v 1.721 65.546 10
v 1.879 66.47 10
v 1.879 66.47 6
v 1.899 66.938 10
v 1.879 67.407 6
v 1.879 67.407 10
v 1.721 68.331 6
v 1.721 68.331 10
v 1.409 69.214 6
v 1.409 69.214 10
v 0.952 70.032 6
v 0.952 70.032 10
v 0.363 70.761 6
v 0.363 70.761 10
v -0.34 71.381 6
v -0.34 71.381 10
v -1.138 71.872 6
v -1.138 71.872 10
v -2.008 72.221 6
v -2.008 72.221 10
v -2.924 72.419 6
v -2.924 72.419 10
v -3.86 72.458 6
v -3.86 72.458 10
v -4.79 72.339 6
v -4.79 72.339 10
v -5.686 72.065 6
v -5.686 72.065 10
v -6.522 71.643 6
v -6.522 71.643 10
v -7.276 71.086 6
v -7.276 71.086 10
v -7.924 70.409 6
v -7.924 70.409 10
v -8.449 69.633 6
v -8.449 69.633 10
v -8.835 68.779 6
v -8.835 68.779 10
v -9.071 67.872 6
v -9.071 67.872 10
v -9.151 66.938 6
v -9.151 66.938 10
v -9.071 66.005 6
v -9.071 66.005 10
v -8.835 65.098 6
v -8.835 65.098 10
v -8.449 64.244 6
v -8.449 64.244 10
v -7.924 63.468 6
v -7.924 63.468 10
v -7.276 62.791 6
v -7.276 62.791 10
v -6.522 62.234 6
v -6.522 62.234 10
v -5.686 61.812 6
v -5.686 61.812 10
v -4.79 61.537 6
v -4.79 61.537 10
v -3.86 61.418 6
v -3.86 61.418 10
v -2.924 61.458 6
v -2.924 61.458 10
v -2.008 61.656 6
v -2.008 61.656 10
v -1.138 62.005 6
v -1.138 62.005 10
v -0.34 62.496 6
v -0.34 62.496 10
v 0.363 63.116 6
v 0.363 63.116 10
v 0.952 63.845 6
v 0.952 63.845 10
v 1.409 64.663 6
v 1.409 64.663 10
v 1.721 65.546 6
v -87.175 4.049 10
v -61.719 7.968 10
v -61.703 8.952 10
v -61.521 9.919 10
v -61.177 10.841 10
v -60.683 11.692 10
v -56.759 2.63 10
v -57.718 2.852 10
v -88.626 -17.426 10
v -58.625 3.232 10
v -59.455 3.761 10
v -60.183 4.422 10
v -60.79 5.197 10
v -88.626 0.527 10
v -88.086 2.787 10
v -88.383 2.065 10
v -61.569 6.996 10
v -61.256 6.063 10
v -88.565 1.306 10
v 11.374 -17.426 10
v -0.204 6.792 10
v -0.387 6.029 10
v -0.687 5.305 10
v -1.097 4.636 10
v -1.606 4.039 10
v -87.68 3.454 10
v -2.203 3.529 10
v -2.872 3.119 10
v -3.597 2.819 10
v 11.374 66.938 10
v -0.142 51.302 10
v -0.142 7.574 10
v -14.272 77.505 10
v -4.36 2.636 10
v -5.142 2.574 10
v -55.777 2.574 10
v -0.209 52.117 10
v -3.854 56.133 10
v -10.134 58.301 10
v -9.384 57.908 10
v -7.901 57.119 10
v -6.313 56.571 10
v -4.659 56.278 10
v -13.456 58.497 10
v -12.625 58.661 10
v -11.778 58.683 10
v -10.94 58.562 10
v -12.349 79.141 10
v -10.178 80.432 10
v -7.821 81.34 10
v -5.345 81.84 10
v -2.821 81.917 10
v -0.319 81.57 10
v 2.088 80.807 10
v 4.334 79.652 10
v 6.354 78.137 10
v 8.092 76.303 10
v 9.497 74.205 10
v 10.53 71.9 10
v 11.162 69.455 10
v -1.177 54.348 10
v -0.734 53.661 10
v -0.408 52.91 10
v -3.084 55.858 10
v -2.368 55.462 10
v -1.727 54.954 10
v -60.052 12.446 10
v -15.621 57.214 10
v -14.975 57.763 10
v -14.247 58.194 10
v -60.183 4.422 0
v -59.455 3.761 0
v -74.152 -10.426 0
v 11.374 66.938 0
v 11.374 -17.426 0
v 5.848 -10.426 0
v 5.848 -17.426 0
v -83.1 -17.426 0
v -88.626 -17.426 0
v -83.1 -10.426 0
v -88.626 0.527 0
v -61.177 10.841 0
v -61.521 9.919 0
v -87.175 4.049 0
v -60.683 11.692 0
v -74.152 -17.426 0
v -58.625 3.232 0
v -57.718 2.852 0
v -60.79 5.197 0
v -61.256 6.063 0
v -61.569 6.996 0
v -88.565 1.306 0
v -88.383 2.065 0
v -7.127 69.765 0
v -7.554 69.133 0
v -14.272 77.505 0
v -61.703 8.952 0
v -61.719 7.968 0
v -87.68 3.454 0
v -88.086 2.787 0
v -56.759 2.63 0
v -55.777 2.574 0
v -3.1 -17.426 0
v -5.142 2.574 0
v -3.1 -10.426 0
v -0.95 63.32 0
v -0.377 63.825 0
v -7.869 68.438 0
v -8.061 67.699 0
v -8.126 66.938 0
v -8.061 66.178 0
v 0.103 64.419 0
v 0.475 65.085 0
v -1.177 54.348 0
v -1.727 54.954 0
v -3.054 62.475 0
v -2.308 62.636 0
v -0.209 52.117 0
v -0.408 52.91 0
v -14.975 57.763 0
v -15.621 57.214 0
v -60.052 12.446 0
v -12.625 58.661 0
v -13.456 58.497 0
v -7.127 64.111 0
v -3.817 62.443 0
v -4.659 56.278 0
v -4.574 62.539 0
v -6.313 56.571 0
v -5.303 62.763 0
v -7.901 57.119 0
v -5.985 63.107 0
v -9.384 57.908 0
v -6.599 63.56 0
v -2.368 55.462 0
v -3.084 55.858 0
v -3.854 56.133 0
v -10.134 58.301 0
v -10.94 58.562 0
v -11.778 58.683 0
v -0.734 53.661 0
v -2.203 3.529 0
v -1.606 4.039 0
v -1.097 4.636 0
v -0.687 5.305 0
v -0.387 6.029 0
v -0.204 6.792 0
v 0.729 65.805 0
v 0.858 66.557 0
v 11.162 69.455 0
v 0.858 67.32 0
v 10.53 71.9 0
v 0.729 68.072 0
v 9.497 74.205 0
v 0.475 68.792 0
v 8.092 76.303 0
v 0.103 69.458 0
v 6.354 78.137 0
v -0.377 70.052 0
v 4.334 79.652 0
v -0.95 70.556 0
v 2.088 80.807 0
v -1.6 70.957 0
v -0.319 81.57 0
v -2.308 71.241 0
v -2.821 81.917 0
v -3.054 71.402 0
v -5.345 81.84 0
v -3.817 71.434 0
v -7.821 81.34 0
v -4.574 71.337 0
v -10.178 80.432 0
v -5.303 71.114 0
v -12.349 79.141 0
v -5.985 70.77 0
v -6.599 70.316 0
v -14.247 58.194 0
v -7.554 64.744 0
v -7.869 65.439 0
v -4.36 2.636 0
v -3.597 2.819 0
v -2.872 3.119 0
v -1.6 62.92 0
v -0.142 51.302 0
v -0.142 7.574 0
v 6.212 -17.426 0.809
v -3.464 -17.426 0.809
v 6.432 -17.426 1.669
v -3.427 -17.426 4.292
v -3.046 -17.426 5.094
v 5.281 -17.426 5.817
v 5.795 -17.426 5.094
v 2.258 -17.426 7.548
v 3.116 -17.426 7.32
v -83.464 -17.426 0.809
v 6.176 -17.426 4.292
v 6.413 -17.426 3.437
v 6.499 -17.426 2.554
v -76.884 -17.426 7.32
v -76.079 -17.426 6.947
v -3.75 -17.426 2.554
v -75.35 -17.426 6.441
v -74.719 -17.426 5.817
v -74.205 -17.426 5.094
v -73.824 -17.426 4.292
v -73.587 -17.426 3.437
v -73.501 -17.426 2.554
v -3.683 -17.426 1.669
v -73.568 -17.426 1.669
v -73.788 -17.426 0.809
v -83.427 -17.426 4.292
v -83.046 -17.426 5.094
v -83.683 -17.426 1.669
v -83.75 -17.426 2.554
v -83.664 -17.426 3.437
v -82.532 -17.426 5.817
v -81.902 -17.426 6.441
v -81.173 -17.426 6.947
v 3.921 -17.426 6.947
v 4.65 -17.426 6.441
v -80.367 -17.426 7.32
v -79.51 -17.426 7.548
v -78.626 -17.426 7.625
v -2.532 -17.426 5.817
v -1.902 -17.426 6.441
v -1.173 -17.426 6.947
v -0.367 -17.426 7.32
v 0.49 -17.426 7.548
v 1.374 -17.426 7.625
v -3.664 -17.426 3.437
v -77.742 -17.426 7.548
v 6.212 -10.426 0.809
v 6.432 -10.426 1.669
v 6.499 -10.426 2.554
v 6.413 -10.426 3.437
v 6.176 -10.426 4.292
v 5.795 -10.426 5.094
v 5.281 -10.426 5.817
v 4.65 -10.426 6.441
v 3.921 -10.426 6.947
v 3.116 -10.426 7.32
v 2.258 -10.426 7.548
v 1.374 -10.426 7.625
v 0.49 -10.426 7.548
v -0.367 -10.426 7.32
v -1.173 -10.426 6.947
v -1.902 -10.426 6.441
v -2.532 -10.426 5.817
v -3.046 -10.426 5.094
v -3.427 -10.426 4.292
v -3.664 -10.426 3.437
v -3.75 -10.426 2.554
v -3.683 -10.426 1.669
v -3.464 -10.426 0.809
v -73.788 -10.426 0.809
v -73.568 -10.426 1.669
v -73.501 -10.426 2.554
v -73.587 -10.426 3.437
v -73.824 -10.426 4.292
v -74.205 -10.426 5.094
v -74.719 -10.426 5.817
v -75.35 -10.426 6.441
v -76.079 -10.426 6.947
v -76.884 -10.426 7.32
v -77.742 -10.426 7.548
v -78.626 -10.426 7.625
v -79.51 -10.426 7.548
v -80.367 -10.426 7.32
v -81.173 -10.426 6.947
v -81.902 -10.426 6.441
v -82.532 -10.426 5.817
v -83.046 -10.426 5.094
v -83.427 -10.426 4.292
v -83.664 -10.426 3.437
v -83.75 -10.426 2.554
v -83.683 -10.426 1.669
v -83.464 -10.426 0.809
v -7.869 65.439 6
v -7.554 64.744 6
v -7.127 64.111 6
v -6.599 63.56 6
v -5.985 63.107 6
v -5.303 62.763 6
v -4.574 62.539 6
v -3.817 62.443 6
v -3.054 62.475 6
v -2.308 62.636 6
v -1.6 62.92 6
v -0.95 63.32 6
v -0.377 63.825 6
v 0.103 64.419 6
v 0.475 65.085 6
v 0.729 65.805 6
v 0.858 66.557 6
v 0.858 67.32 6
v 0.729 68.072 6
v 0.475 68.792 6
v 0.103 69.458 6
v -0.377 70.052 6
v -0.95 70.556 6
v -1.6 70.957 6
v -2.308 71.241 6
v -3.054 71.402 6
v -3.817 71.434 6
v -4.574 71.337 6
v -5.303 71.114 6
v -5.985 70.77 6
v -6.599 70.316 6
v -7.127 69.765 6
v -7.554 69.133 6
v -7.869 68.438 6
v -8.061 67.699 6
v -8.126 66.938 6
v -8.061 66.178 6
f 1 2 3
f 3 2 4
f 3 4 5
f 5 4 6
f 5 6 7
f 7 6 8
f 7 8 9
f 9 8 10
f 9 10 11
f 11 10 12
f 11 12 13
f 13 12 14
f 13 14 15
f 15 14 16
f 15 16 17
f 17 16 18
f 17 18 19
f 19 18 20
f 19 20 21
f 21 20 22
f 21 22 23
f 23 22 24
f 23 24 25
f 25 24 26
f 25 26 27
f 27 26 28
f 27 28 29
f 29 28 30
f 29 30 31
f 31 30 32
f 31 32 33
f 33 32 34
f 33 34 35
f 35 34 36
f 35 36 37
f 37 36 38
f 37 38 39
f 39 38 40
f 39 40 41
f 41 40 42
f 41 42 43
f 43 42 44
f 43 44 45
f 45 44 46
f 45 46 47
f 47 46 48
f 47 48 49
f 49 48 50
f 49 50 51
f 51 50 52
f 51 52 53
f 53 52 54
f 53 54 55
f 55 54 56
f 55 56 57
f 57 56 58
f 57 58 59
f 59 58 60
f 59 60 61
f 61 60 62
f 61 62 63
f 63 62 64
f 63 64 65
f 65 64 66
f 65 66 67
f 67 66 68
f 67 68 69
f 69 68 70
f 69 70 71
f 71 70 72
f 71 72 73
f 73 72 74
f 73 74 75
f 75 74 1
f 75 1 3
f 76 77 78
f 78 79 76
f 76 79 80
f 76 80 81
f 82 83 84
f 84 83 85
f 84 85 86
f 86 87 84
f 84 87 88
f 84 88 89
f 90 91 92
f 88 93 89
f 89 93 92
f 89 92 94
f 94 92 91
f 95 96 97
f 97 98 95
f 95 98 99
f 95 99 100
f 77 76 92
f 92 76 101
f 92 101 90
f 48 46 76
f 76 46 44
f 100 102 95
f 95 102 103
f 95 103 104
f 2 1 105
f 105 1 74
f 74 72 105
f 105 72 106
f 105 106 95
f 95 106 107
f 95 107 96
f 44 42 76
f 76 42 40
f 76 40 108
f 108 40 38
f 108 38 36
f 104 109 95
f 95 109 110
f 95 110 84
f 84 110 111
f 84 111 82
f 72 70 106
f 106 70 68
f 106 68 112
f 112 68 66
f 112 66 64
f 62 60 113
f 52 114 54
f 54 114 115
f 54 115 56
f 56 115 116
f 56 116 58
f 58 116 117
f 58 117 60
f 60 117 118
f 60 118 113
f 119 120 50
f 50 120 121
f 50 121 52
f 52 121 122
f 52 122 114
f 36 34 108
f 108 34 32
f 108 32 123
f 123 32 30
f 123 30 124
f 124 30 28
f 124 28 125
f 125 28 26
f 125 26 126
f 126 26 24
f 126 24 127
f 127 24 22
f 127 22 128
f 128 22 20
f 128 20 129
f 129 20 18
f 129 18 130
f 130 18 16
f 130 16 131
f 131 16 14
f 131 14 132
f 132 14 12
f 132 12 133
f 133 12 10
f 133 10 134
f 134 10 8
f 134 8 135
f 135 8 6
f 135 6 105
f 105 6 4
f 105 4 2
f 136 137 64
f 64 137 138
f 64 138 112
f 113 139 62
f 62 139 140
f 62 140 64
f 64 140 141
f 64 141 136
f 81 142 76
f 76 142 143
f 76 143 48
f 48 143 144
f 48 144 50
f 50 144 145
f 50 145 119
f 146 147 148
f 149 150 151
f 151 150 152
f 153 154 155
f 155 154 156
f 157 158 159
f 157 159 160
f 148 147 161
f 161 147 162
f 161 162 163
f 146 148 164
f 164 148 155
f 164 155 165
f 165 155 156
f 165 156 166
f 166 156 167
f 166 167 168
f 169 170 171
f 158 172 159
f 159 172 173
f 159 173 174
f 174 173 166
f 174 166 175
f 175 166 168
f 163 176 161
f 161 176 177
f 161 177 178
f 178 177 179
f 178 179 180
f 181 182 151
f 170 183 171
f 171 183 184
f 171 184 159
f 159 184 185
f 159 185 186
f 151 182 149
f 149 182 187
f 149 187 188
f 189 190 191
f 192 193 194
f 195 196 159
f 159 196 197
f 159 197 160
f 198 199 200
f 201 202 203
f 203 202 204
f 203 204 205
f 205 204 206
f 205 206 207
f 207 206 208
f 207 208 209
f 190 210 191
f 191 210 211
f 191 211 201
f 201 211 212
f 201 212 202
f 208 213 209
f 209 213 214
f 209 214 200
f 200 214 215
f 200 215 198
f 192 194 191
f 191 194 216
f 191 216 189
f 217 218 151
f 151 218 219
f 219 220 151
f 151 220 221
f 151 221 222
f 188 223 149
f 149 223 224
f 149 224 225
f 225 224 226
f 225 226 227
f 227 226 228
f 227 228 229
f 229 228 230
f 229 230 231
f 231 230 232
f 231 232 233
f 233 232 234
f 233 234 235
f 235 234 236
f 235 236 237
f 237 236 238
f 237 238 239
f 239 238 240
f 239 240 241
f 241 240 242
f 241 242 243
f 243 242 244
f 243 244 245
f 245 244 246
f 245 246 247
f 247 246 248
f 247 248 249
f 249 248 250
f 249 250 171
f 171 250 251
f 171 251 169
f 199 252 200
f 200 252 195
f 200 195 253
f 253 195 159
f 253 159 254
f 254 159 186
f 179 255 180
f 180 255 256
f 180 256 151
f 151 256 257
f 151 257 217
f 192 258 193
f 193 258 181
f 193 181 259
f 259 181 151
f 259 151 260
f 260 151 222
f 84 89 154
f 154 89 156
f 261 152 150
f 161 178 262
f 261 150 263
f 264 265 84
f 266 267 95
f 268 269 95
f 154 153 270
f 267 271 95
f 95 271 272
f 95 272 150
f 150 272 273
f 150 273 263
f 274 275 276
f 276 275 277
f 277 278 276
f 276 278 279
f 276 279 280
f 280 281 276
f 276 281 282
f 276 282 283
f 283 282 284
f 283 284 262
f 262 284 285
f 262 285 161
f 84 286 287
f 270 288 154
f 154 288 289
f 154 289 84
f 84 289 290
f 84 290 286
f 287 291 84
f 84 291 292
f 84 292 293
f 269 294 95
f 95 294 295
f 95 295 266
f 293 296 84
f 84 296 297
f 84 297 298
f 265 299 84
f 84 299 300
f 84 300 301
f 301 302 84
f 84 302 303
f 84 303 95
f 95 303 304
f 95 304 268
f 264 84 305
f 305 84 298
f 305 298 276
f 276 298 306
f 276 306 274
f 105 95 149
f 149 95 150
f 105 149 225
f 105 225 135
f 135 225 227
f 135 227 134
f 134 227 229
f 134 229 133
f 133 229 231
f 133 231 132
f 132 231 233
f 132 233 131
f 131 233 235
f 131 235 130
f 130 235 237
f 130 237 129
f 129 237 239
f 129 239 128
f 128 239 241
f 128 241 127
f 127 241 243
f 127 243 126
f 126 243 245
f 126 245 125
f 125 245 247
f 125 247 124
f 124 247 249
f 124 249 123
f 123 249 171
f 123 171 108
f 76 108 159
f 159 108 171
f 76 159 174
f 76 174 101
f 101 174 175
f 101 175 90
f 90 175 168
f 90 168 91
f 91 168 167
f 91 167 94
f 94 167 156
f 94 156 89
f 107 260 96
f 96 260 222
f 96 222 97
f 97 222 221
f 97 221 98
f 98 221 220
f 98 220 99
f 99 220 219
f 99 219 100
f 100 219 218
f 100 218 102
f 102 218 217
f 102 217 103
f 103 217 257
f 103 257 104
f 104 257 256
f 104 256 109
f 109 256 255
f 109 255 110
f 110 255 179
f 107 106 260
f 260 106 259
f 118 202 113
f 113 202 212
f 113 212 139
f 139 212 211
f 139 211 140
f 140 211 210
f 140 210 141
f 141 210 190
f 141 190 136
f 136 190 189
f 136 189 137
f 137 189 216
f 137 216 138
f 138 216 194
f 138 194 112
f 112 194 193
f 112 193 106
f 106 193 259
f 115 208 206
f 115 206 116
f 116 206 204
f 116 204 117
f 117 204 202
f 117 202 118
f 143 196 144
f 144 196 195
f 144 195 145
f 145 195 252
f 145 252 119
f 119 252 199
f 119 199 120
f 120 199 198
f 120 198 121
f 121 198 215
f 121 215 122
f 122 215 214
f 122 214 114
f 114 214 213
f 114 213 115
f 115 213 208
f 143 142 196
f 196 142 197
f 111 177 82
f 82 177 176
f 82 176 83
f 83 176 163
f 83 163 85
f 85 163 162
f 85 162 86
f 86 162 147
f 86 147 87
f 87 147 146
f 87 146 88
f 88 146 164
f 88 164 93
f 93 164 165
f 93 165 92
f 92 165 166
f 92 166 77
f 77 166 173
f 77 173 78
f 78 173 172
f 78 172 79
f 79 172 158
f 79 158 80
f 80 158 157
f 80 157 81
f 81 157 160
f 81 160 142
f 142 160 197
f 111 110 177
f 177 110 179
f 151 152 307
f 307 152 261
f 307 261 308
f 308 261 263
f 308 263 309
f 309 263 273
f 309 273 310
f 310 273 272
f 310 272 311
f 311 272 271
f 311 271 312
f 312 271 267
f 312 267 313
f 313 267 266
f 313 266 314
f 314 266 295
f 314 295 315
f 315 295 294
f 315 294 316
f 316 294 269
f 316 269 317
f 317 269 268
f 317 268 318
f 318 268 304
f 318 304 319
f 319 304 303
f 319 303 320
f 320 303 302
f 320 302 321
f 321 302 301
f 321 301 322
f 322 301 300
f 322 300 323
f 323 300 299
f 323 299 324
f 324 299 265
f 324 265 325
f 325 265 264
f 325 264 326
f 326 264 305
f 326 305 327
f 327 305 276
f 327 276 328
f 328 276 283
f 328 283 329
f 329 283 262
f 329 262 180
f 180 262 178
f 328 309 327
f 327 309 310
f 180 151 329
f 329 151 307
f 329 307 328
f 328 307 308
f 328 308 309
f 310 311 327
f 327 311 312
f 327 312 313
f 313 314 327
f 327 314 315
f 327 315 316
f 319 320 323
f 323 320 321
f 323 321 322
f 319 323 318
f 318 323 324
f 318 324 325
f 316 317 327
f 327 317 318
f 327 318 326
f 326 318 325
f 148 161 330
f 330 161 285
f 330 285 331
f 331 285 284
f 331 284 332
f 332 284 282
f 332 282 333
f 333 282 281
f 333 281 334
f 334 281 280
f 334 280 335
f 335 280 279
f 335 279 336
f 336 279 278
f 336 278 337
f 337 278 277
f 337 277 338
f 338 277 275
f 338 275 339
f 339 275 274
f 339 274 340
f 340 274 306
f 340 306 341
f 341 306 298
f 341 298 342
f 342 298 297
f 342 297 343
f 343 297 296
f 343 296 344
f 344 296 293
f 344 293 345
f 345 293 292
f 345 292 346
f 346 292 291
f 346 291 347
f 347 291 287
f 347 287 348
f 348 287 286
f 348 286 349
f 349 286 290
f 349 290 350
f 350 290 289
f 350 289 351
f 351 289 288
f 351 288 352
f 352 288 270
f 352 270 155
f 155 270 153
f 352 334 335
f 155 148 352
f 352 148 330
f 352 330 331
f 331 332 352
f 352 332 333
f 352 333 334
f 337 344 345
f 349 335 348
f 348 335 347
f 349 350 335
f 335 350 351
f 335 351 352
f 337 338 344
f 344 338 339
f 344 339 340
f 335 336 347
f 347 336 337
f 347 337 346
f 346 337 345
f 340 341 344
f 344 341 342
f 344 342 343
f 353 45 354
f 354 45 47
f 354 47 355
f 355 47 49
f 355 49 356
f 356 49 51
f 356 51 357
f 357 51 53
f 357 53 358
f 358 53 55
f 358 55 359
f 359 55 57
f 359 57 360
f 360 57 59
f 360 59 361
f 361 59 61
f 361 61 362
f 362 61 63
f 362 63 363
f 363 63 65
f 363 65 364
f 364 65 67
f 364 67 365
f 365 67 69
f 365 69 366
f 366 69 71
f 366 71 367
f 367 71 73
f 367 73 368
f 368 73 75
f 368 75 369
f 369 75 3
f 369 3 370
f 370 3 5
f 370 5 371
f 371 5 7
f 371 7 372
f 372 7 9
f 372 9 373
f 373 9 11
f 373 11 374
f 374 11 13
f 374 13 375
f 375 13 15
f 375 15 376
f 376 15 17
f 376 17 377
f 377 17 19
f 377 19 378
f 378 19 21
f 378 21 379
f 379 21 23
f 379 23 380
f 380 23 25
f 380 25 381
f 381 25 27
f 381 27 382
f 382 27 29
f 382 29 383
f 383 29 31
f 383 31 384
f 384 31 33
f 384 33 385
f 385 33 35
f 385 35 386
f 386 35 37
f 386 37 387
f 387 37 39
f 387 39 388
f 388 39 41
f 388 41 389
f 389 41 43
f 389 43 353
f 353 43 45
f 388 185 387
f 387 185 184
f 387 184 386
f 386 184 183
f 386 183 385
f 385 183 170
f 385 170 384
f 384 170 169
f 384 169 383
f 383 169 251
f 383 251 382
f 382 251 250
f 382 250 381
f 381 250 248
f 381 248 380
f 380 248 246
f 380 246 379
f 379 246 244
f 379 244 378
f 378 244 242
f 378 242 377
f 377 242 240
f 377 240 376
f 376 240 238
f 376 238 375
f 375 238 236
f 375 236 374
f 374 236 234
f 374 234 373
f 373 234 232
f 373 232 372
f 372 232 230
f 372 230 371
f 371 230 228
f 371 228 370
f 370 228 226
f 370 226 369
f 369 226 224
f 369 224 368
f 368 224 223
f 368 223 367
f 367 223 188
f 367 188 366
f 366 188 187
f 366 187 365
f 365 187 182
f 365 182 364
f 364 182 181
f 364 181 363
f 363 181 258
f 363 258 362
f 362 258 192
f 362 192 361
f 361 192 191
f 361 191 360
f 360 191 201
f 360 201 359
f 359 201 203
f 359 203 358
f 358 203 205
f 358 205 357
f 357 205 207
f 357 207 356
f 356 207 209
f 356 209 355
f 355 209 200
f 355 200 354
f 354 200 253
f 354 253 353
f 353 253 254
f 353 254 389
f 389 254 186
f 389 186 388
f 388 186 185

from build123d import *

# Parameters (mm, degrees)
SKETCH2_R           = 5.525
BOSS_EXTRUDE1_DEPTH = 10
SKETCH4_R           = 5.125
CUT_EXTRUDE2_DEPTH  = 7
SKETCH5_R           = 5.525
SKETCH5_R_2         = 4.5
BOSS_EXTRUDE4_DEPTH = 6


with BuildPart() as part:
    # Sketch2 → Boss-Extrude1 (new body)
    with BuildSketch(Plane.XY):
        with BuildLine():
            Line((-88.62562975, 0.527091372), (-88.62562975, -17.425503603))
            Line((-88.62562975, -17.425503603), (11.37437025, -17.425503603))
            Line((11.37437025, -17.425503603), (11.37437025, 2.574496397))
            Line((11.37437025, 2.574496397), (11.37437025, 66.938471641))
            ThreePointArc((11.37437025, 66.938471641), (2.08841102, 80.807492446), (-14.272261494, 77.504891684))
            Line((-14.272261494, 77.504891684), (-87.174506998, 4.049231386))
            ThreePointArc((-87.174506998, 4.049231386), (-88.248636685, 2.431771629), (-88.62562975, 0.527091372))
        make_face()
        with BuildLine():
            ThreePointArc((-55.776519908, 2.574496397), (-61.255836785, 6.063207717), (-60.051592087, 12.446295905))
            Line((-60.051592087, 12.446295905), (-15.620909093, 57.214260654))
            ThreePointArc((-15.620909093, 57.214260654), (-12.624755601, 58.661476378), (-9.38382576, 57.907989239))
            ThreePointArc((-9.38382576, 57.907989239), (-7.11800033, 56.813760216), (-4.659411057, 56.278371739))
            ThreePointArc((-4.659411057, 56.278371739), (-1.43979486, 54.662291481), (-0.142030474, 51.301718396))
            Line((-0.142030474, 51.301718396), (-0.142030474, 7.574496397))
            ThreePointArc((-0.142030474, 7.574496397), (-1.606496568, 4.038962491), (-5.142030474, 2.574496397))
            Line((-5.142030474, 2.574496397), (-55.776519908, 2.574496397))
        make_face(mode=Mode.SUBTRACT)
        with Locations((-3.62562975, 66.938471641)):
            Circle(SKETCH2_R, mode=Mode.SUBTRACT)
    extrude(amount=BOSS_EXTRUDE1_DEPTH)

    # Sketch4 → Cut-Extrude2 (cut)
    with BuildSketch(Plane.XZ.offset(17.425503603)):
        with Locations((-78.62562975, 2.5)):
            Circle(SKETCH4_R)
        with Locations((1.37437025, 2.5)):
            Circle(SKETCH4_R)
    extrude(amount=-CUT_EXTRUDE2_DEPTH, mode=Mode.SUBTRACT)

    # Sketch5 → Boss-Extrude4 (add)
    with BuildSketch(Plane(origin=(0, 0, 0), x_dir=(-1, 0, 0), z_dir=(0, 0, -1))):
        with Locations((3.62562975, 66.938471641)):
            Circle(SKETCH5_R)
        with Locations((3.62562975, 66.938471641)):
            Circle(SKETCH5_R_2, mode=Mode.SUBTRACT)
    extrude(amount=-BOSS_EXTRUDE4_DEPTH)


solid = part.part
